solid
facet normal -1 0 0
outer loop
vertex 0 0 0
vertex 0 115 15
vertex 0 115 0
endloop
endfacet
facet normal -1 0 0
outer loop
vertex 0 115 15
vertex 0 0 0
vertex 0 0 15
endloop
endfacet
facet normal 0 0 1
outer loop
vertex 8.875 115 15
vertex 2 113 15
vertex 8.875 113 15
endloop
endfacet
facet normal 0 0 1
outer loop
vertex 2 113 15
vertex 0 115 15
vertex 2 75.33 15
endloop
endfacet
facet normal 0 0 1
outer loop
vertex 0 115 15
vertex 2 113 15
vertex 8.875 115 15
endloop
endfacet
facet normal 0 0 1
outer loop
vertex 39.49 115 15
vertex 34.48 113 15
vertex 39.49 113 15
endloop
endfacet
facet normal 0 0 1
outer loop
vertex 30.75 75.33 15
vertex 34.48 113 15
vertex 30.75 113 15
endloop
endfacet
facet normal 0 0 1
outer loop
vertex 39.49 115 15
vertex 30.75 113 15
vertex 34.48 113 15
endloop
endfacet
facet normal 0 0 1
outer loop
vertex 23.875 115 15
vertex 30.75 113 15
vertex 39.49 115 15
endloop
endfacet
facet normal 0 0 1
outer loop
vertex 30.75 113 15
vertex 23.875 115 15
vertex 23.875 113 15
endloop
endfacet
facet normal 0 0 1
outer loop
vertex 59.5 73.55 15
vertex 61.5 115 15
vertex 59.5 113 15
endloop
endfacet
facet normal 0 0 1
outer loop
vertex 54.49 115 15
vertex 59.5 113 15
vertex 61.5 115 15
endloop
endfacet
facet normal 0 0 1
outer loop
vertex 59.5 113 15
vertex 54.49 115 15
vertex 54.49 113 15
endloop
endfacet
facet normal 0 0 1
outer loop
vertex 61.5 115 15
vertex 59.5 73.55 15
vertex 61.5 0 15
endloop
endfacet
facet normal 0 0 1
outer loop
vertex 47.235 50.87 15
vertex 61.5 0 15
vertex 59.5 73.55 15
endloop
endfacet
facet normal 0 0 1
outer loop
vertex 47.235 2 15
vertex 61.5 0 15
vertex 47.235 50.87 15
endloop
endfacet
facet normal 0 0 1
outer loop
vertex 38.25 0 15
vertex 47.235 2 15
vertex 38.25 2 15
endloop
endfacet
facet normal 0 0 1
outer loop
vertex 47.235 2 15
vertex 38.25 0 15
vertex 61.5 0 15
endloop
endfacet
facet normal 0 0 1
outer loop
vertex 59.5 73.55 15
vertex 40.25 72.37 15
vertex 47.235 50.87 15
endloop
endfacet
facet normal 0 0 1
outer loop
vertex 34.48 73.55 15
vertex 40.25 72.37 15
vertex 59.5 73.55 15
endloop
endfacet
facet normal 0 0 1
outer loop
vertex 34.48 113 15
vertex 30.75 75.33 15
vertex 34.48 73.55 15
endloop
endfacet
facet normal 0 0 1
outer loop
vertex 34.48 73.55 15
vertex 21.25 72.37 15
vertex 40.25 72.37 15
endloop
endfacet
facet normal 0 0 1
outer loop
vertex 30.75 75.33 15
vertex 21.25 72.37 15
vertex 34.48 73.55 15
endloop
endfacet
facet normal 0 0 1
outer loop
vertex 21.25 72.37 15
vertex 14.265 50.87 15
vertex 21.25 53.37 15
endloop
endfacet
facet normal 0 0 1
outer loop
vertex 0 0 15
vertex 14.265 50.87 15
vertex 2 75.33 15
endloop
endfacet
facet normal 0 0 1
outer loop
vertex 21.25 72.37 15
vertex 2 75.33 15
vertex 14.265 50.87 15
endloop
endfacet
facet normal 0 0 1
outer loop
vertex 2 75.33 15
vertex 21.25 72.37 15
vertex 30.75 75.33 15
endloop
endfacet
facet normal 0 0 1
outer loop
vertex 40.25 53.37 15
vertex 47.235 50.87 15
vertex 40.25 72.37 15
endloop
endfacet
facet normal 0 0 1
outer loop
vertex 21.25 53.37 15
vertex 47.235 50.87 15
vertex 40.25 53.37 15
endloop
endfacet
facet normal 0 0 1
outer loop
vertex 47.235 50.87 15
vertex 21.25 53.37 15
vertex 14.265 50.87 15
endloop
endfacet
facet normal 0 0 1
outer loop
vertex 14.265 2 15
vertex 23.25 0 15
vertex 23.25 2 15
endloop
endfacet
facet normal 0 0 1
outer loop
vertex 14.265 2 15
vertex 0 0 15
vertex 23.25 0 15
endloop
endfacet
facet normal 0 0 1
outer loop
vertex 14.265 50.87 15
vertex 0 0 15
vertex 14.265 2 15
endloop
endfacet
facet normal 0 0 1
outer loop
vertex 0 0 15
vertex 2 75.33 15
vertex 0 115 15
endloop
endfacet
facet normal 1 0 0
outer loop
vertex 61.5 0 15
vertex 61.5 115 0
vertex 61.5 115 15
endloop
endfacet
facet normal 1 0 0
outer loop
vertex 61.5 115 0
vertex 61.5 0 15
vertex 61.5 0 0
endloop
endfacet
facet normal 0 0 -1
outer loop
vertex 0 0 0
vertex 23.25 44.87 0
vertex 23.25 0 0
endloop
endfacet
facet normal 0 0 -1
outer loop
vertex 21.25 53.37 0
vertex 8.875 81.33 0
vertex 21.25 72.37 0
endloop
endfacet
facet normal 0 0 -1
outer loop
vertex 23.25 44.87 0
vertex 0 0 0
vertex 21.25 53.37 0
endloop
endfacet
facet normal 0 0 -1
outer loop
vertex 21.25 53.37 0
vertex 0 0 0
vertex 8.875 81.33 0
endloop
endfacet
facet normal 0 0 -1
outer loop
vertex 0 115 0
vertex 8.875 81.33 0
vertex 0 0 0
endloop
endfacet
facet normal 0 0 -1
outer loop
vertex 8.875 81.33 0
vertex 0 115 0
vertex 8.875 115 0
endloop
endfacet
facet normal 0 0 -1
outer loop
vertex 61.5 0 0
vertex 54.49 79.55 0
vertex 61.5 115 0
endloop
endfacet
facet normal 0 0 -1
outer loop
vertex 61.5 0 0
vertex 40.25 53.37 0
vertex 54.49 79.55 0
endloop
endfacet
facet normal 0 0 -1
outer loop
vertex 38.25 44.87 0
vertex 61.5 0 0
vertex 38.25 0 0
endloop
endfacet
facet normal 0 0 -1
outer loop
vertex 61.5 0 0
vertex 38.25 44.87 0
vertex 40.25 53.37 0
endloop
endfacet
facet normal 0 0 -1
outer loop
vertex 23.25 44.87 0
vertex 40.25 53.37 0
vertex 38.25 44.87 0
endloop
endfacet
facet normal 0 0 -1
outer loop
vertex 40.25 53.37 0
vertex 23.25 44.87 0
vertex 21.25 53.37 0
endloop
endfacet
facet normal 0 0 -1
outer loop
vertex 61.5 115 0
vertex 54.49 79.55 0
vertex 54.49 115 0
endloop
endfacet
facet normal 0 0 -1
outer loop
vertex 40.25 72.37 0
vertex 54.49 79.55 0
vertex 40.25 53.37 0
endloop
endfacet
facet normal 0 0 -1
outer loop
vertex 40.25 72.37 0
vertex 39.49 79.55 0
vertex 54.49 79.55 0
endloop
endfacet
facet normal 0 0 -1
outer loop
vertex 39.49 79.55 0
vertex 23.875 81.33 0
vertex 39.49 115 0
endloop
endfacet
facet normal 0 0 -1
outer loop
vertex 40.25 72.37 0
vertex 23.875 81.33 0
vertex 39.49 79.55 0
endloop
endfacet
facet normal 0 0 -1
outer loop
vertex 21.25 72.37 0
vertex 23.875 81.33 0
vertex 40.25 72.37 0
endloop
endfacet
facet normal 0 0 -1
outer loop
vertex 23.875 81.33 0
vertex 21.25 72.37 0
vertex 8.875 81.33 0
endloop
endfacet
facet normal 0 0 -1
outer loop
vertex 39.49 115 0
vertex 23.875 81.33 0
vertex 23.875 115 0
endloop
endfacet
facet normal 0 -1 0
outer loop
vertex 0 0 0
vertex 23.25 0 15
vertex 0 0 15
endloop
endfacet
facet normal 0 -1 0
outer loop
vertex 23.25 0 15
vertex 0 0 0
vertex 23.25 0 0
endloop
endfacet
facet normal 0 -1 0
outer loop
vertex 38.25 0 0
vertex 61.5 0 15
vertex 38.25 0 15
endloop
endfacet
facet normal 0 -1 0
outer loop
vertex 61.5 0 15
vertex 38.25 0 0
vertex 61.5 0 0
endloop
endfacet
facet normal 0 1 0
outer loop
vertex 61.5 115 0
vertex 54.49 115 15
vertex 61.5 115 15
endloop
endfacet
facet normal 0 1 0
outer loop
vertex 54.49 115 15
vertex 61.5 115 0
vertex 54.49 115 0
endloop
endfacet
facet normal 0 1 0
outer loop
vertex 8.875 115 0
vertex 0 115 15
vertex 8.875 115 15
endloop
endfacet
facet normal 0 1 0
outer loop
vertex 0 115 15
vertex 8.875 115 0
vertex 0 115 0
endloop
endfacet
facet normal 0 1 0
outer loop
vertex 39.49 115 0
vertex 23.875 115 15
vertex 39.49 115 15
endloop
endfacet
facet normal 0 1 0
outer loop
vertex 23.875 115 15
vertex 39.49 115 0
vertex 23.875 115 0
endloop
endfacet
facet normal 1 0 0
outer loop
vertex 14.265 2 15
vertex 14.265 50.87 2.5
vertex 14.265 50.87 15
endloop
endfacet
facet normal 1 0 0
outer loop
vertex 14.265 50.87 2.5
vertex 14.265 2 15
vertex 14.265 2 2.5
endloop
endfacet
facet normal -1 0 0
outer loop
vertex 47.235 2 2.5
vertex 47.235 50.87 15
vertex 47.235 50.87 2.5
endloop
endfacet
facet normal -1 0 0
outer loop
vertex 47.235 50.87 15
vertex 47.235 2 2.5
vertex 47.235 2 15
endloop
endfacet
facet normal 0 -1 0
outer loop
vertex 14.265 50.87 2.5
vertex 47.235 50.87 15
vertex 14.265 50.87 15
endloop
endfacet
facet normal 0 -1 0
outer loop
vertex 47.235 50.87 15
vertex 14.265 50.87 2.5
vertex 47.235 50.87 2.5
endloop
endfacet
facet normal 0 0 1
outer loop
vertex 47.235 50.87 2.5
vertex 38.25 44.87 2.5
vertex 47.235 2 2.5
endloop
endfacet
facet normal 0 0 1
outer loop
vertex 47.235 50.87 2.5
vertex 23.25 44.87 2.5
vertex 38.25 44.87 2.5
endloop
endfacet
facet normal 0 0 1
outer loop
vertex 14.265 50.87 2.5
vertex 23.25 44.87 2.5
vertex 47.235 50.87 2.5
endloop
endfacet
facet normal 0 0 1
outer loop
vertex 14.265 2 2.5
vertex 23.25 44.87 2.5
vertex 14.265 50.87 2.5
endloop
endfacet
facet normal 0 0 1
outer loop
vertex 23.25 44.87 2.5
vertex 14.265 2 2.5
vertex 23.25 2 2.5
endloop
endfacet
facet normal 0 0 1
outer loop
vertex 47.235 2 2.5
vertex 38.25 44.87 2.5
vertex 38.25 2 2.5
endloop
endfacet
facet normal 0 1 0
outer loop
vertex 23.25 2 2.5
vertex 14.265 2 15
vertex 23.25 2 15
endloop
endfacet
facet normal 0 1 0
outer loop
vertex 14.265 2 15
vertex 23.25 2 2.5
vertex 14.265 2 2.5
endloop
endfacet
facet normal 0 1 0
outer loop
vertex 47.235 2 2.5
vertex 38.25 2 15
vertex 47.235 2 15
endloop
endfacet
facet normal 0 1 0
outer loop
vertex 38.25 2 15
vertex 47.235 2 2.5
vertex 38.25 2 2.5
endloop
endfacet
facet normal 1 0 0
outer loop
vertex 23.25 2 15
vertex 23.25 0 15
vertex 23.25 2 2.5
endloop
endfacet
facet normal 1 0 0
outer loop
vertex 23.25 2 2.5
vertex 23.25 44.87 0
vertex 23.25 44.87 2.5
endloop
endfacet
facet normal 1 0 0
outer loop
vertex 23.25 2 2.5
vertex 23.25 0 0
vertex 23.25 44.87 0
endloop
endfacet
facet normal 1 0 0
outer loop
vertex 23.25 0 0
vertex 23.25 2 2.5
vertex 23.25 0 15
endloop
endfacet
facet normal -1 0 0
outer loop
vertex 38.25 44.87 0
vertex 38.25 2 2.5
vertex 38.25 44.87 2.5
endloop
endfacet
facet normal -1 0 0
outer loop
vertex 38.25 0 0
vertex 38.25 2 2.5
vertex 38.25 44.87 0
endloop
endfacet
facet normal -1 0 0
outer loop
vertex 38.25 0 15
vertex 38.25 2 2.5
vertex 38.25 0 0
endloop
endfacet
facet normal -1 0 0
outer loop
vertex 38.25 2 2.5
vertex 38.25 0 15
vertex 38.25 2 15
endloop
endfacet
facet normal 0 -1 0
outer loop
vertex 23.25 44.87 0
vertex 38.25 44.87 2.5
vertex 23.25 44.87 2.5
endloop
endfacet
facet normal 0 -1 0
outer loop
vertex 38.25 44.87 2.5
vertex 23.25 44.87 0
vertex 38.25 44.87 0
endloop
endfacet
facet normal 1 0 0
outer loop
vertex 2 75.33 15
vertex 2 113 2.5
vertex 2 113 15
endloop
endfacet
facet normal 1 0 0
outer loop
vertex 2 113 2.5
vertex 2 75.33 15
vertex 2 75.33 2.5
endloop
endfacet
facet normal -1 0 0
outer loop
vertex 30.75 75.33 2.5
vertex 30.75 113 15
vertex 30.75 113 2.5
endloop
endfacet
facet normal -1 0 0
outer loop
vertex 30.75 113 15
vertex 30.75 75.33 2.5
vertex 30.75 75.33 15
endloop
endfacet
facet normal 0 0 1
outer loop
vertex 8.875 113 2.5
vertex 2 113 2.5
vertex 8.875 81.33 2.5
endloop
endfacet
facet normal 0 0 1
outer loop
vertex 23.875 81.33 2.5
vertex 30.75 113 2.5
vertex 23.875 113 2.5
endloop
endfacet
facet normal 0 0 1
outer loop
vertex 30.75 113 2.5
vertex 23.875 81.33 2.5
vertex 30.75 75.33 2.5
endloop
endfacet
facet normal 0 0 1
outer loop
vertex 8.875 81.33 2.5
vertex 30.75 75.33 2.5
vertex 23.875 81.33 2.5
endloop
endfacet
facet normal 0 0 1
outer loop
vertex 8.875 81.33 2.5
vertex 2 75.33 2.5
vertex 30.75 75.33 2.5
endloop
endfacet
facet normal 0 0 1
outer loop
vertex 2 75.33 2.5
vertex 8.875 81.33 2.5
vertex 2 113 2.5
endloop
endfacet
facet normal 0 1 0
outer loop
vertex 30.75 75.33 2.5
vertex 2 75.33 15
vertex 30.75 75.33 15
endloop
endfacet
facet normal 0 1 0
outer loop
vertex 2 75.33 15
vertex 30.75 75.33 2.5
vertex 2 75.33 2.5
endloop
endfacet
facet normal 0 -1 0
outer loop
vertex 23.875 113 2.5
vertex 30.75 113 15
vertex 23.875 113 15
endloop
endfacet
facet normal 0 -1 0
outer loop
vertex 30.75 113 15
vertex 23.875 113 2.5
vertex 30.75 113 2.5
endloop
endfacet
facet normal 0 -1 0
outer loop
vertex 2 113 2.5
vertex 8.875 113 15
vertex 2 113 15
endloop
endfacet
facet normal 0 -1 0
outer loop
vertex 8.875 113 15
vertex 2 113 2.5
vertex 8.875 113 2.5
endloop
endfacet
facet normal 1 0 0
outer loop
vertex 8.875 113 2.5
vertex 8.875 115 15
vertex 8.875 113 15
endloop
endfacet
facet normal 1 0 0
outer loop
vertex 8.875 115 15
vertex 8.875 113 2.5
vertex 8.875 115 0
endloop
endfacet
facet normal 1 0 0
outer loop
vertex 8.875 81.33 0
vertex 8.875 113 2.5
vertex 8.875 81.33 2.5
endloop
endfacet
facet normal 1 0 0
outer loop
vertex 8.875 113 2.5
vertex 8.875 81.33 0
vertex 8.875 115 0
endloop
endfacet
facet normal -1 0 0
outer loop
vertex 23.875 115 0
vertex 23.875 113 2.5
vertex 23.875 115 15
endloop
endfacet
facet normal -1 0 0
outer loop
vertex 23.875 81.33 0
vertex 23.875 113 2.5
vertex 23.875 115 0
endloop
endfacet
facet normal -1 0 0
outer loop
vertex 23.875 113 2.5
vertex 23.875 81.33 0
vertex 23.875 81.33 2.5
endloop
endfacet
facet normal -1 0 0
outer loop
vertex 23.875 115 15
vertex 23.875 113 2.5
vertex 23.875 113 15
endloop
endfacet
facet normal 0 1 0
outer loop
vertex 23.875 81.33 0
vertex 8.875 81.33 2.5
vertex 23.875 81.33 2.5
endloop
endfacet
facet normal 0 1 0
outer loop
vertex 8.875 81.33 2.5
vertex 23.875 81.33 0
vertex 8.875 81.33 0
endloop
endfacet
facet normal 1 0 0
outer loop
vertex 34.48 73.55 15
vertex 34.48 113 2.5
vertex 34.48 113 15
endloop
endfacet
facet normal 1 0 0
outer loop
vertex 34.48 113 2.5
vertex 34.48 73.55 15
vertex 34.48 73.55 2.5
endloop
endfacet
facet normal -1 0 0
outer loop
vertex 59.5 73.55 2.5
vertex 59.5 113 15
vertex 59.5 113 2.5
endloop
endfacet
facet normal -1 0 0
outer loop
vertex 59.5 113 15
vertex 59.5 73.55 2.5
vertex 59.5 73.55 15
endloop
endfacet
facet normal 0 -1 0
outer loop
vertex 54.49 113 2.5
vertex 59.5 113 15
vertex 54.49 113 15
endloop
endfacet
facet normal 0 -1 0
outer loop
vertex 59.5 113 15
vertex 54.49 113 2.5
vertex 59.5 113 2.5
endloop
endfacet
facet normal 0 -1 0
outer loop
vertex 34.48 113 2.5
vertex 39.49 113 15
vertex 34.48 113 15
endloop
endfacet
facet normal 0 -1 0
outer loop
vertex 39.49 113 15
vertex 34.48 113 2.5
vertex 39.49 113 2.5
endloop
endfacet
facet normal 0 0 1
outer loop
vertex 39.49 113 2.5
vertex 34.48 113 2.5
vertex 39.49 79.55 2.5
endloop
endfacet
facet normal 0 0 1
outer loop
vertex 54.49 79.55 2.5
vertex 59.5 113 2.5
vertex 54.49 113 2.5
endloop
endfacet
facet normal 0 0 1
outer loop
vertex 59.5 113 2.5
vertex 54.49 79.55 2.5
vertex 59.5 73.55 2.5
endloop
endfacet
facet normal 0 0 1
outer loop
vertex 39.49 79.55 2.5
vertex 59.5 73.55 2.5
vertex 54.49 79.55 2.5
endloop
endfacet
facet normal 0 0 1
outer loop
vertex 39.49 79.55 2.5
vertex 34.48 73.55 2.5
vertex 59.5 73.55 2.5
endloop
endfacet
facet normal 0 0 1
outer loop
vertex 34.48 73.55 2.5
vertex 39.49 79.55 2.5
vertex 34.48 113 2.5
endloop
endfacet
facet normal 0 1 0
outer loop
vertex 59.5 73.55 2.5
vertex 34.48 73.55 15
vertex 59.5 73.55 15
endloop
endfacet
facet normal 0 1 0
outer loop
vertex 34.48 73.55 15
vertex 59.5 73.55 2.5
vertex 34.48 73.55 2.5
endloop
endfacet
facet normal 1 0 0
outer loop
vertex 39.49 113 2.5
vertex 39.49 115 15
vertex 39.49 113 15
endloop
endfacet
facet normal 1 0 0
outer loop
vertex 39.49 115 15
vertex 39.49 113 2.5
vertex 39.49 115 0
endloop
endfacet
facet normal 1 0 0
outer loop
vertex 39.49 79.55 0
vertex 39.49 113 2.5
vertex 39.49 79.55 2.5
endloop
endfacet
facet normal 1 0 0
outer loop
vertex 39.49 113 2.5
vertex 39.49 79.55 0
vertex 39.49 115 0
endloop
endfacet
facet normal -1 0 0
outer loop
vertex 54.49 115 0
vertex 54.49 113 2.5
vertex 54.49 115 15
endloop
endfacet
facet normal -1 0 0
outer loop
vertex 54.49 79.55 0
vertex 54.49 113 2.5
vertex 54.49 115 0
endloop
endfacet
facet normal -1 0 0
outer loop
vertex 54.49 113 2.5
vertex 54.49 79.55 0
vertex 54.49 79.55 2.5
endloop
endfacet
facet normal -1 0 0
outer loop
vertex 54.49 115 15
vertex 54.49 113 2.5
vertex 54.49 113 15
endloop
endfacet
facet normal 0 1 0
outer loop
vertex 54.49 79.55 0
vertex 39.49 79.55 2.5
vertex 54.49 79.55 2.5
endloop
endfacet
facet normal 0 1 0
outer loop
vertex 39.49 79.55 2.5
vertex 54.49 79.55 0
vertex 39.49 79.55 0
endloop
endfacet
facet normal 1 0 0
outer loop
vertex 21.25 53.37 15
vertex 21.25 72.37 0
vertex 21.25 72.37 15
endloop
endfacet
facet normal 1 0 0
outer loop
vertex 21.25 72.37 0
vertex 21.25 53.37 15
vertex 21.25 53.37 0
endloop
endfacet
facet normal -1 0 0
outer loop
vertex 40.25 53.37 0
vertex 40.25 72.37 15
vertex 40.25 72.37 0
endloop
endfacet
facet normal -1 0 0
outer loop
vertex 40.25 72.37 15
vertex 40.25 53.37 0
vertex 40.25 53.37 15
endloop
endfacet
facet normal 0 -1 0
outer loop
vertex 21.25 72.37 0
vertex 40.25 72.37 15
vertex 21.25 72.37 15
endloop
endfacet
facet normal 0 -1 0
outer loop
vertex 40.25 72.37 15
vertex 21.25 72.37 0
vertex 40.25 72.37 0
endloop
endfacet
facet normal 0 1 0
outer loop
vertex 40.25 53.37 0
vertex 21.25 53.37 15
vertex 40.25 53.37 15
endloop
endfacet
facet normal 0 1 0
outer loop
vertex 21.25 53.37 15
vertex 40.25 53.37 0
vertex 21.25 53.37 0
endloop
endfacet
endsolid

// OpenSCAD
length = 61.5;
width = 115;
height = 15;

//Based on magnet size:
magnetBaseInnerDiameter = 19;
magnetHeight = 4.0;

//inox guard x 6, 47.87 x 31.97, base 29.36
//bandit guard x 6, 36.67 x 27.75, base 24.43
//city guard x 6, 38.45 x 24.02, base 21.30
//single token 2.0
magnetOffset = 49.37;
largeTokenWidth = 47.87 + 1;
largeTokenLength = 31.97 + 1;
largeTokenHeight = 12 + .5;
largeTokenSquareLipWidthRemainder = largeTokenLength - 15;
largeTokenSquareLipLengthRemainder = 4;

smallToken1Width = 36.67 + 1;
smallToken1Length = 27.75 + 1;
smallToken1Height = 12 + .5;
smallToken1SquareLipWidthRemainder = smallToken1Length - 15;
smallToken1SquareLipLengthRemainder = 4;

smallToken2Width = 38.45 + 1;
smallToken2Length = 24.02 + 1;
smallToken2Height = 12 + .5;
smallToken2SquareLipWidthRemainder = smallToken2Length - 15;
smallToken2SquareLipLengthRemainder = 4;

spaceBetweenCircles = 2;
wallThickness = spaceBetweenCircles;



difference(){
    cube([length, width, height]);


//----------------------------------
translate(
        [
            length/2 - largeTokenLength/2,
            wallThickness,
            height - largeTokenHeight
        ])
        cube([largeTokenLength,largeTokenWidth, largeTokenHeight]);
    translate([
        length/2 - (largeTokenLength - largeTokenSquareLipWidthRemainder)/2,
        0,
        0])
        cube([
            largeTokenLength - largeTokenSquareLipWidthRemainder,
            largeTokenWidth - largeTokenSquareLipLengthRemainder,
            height]);

            
//---------------------------------------------------------------------
    
    translate(
        [
            wallThickness,
            width - (wallThickness + smallToken1Width),
            height - smallToken1Height
        ])
        cube([smallToken1Length,smallToken1Width, smallToken1Height]);
    translate([
        wallThickness + smallToken1SquareLipWidthRemainder/2,
        width - (smallToken1Width - smallToken1SquareLipLengthRemainder),
        0])
        cube([
            smallToken1Length - smallToken1SquareLipWidthRemainder,
            smallToken1Width - smallToken1SquareLipLengthRemainder,
            height]);

    translate(
        [
            length - (wallThickness + smallToken2Length),
            width - (wallThickness + smallToken2Width),
            height - smallToken2Height
        ])
        cube([smallToken2Length,smallToken2Width, smallToken2Height]);
    translate([
        length - (wallThickness + smallToken2Length) + smallToken2SquareLipWidthRemainder/2,
        width - (smallToken2Width - smallToken2SquareLipLengthRemainder),
        0])
        cube([
            smallToken2Length - smallToken2SquareLipWidthRemainder,
            smallToken2Width - smallToken2SquareLipLengthRemainder,
            height]);       

//----------------------------------------
   
    translate([length/2 - magnetBaseInnerDiameter/2, magnetOffset + wallThickness * 2, 0])
        cube([magnetBaseInnerDiameter, magnetBaseInnerDiameter, height]);
        

}
